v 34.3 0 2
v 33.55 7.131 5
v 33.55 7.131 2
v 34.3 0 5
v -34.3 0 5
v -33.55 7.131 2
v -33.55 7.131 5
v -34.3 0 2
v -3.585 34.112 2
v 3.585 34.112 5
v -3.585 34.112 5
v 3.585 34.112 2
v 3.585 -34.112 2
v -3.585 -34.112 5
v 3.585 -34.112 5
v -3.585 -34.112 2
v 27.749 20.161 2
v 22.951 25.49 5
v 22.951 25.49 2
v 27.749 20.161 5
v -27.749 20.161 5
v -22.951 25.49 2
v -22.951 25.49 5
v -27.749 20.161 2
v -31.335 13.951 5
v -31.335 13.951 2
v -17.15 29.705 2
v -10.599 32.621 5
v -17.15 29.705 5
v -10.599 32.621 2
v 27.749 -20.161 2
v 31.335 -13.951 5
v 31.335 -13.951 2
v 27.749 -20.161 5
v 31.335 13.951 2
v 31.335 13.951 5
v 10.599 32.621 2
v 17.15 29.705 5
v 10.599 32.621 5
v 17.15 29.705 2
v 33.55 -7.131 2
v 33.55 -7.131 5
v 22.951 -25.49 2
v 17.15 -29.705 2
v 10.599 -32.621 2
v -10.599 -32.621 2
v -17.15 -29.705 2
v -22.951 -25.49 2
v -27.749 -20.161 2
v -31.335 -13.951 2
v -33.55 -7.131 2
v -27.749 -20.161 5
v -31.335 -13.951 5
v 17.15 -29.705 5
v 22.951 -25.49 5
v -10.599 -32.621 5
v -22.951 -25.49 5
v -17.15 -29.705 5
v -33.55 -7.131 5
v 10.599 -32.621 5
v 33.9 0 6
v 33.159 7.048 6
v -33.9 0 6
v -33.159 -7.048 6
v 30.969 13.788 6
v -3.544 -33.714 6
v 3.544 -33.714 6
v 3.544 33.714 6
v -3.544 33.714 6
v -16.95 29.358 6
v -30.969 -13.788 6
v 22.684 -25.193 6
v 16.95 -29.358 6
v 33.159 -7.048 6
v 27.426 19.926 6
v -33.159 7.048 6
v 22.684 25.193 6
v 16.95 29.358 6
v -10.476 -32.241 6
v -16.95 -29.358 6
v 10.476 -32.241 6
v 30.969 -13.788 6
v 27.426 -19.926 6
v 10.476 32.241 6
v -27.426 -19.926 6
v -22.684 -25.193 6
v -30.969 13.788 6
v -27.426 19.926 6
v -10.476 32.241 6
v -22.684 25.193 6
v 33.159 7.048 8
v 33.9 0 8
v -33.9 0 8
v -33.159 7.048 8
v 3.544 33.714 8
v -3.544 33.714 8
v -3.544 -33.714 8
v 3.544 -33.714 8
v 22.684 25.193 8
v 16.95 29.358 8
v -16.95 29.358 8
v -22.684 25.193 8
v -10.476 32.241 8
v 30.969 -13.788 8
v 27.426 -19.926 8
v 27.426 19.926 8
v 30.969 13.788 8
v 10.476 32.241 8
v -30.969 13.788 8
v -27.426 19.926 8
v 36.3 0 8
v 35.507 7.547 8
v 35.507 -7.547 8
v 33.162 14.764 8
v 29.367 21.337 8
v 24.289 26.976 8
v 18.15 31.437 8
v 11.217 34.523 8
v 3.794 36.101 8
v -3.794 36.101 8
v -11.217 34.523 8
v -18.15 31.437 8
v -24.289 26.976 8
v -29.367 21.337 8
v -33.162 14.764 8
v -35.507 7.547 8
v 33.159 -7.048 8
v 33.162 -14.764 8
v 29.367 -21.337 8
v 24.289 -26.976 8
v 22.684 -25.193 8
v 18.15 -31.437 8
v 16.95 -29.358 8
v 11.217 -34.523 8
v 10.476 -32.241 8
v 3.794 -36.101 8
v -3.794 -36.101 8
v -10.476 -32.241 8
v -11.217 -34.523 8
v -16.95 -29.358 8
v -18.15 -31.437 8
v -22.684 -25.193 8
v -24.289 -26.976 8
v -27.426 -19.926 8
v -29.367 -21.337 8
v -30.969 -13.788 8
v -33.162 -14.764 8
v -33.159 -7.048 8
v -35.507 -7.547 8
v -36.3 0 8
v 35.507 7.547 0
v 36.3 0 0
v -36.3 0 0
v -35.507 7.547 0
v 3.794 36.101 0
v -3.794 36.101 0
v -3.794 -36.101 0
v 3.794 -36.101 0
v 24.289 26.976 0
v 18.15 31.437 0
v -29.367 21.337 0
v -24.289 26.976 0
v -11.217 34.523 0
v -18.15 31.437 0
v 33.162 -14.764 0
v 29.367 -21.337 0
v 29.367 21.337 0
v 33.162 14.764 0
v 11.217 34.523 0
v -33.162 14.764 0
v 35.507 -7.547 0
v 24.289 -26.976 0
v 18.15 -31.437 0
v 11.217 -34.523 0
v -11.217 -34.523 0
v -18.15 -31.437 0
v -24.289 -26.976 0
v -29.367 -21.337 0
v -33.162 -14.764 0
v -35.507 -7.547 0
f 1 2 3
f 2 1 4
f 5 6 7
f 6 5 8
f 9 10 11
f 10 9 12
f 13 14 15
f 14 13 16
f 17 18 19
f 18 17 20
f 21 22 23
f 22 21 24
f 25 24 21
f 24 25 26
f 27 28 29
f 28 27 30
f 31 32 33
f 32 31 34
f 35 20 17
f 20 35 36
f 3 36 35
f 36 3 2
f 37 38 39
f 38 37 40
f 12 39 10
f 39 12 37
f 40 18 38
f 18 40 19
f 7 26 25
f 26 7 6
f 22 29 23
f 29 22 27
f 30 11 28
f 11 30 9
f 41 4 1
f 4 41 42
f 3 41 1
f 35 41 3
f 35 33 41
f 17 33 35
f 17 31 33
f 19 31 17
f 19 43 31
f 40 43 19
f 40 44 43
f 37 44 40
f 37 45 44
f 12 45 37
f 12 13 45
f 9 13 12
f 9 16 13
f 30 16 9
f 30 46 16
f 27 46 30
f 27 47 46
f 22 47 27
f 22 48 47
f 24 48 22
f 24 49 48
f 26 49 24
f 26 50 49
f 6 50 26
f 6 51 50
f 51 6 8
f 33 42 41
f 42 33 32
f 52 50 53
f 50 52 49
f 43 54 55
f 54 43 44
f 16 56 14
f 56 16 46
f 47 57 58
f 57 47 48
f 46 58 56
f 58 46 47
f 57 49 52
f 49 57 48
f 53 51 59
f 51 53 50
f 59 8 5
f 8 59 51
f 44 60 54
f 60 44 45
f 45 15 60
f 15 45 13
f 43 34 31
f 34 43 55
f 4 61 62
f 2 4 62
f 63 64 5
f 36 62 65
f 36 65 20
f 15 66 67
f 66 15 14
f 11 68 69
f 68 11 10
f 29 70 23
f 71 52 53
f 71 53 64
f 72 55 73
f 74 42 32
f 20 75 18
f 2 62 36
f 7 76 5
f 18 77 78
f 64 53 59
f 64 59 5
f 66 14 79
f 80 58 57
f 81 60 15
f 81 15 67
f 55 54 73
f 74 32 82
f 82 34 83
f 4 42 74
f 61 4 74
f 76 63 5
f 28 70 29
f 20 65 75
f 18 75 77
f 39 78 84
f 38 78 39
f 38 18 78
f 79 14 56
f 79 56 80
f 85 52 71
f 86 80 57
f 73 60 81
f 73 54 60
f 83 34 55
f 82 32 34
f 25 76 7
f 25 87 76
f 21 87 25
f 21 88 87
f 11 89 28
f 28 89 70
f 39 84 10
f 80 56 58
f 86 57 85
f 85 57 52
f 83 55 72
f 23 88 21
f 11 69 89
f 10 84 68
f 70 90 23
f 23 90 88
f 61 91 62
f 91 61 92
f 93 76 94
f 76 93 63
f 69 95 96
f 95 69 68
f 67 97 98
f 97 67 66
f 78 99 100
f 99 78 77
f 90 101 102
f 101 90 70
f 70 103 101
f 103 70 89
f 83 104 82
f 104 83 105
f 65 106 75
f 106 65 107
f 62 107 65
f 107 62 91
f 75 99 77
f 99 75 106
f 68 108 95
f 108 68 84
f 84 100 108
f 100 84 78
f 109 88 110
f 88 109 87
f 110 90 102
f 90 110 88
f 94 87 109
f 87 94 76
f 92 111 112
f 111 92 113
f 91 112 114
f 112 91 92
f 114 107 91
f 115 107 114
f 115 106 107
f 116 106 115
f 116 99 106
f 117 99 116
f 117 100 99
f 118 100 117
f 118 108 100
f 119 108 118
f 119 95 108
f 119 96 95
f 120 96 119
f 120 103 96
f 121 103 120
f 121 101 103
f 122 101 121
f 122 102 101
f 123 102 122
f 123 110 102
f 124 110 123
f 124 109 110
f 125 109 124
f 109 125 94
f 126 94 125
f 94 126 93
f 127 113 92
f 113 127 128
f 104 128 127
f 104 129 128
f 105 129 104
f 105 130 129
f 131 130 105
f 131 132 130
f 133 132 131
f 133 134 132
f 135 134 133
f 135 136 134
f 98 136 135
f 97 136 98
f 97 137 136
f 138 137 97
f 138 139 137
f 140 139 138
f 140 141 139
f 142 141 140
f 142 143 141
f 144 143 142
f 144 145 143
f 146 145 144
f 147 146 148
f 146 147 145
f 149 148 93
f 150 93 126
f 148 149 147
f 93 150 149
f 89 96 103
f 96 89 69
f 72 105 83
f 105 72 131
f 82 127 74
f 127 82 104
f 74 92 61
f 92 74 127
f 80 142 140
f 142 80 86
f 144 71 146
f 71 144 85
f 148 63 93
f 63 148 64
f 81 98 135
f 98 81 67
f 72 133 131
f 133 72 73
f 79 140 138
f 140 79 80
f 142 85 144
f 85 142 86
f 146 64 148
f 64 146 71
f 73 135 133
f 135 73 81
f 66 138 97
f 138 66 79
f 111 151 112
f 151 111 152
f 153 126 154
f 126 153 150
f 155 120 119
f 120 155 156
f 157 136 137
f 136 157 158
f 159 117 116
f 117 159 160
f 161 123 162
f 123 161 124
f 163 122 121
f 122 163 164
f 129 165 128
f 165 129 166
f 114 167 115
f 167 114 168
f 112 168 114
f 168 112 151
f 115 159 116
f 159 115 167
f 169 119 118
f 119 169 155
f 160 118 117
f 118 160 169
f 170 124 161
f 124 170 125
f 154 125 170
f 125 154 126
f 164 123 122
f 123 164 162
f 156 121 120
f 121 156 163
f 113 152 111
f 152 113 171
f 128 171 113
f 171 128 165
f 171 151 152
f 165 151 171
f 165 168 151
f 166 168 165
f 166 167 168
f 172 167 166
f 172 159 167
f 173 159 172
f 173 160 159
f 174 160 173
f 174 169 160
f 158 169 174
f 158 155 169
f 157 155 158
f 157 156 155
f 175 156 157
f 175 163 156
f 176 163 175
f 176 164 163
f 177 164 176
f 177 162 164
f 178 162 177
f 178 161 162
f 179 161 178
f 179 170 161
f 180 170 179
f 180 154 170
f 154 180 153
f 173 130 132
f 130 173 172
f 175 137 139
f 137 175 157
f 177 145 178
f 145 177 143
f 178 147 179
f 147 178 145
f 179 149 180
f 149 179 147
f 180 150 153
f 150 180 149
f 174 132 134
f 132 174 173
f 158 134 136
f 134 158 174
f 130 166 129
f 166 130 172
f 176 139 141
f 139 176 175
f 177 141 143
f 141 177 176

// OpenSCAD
// Parameters
// Diameter of the can
d1 = 67.3 + 1.3;
// Inner diameter
d2 = d1 - 0.8;
// Outer diameter of the lid
d0 = d1 + 4;

// Height of the basement
h0 = 2;
// Height of the inner part
h1 = 3;
// Height of the passage
h1a = 1;
// Height of the outer part
h2 = 2;

// Overall height of the lid
h = h0 + h1 + h1a + h2;

// See http://www.openscad.org/cheatsheet/

module body() {
    cylinder(h = h, d = d0, center = false);
}

module can() {
    cylinder(h = h1, d = d1, center = false);
    translate([0, 0, h1]) {
        cylinder(h = h1a, d1 = d1, d2 = d2, center = false);
    }
    translate([0, 0, h1 + h1a]) {
        cylinder(h = h2, d = d2, center = false);
    }
}

module lid() {
    difference() {
        body();
        translate([0, 0, h0]) {
            can();
        }
    }
}

lid();
